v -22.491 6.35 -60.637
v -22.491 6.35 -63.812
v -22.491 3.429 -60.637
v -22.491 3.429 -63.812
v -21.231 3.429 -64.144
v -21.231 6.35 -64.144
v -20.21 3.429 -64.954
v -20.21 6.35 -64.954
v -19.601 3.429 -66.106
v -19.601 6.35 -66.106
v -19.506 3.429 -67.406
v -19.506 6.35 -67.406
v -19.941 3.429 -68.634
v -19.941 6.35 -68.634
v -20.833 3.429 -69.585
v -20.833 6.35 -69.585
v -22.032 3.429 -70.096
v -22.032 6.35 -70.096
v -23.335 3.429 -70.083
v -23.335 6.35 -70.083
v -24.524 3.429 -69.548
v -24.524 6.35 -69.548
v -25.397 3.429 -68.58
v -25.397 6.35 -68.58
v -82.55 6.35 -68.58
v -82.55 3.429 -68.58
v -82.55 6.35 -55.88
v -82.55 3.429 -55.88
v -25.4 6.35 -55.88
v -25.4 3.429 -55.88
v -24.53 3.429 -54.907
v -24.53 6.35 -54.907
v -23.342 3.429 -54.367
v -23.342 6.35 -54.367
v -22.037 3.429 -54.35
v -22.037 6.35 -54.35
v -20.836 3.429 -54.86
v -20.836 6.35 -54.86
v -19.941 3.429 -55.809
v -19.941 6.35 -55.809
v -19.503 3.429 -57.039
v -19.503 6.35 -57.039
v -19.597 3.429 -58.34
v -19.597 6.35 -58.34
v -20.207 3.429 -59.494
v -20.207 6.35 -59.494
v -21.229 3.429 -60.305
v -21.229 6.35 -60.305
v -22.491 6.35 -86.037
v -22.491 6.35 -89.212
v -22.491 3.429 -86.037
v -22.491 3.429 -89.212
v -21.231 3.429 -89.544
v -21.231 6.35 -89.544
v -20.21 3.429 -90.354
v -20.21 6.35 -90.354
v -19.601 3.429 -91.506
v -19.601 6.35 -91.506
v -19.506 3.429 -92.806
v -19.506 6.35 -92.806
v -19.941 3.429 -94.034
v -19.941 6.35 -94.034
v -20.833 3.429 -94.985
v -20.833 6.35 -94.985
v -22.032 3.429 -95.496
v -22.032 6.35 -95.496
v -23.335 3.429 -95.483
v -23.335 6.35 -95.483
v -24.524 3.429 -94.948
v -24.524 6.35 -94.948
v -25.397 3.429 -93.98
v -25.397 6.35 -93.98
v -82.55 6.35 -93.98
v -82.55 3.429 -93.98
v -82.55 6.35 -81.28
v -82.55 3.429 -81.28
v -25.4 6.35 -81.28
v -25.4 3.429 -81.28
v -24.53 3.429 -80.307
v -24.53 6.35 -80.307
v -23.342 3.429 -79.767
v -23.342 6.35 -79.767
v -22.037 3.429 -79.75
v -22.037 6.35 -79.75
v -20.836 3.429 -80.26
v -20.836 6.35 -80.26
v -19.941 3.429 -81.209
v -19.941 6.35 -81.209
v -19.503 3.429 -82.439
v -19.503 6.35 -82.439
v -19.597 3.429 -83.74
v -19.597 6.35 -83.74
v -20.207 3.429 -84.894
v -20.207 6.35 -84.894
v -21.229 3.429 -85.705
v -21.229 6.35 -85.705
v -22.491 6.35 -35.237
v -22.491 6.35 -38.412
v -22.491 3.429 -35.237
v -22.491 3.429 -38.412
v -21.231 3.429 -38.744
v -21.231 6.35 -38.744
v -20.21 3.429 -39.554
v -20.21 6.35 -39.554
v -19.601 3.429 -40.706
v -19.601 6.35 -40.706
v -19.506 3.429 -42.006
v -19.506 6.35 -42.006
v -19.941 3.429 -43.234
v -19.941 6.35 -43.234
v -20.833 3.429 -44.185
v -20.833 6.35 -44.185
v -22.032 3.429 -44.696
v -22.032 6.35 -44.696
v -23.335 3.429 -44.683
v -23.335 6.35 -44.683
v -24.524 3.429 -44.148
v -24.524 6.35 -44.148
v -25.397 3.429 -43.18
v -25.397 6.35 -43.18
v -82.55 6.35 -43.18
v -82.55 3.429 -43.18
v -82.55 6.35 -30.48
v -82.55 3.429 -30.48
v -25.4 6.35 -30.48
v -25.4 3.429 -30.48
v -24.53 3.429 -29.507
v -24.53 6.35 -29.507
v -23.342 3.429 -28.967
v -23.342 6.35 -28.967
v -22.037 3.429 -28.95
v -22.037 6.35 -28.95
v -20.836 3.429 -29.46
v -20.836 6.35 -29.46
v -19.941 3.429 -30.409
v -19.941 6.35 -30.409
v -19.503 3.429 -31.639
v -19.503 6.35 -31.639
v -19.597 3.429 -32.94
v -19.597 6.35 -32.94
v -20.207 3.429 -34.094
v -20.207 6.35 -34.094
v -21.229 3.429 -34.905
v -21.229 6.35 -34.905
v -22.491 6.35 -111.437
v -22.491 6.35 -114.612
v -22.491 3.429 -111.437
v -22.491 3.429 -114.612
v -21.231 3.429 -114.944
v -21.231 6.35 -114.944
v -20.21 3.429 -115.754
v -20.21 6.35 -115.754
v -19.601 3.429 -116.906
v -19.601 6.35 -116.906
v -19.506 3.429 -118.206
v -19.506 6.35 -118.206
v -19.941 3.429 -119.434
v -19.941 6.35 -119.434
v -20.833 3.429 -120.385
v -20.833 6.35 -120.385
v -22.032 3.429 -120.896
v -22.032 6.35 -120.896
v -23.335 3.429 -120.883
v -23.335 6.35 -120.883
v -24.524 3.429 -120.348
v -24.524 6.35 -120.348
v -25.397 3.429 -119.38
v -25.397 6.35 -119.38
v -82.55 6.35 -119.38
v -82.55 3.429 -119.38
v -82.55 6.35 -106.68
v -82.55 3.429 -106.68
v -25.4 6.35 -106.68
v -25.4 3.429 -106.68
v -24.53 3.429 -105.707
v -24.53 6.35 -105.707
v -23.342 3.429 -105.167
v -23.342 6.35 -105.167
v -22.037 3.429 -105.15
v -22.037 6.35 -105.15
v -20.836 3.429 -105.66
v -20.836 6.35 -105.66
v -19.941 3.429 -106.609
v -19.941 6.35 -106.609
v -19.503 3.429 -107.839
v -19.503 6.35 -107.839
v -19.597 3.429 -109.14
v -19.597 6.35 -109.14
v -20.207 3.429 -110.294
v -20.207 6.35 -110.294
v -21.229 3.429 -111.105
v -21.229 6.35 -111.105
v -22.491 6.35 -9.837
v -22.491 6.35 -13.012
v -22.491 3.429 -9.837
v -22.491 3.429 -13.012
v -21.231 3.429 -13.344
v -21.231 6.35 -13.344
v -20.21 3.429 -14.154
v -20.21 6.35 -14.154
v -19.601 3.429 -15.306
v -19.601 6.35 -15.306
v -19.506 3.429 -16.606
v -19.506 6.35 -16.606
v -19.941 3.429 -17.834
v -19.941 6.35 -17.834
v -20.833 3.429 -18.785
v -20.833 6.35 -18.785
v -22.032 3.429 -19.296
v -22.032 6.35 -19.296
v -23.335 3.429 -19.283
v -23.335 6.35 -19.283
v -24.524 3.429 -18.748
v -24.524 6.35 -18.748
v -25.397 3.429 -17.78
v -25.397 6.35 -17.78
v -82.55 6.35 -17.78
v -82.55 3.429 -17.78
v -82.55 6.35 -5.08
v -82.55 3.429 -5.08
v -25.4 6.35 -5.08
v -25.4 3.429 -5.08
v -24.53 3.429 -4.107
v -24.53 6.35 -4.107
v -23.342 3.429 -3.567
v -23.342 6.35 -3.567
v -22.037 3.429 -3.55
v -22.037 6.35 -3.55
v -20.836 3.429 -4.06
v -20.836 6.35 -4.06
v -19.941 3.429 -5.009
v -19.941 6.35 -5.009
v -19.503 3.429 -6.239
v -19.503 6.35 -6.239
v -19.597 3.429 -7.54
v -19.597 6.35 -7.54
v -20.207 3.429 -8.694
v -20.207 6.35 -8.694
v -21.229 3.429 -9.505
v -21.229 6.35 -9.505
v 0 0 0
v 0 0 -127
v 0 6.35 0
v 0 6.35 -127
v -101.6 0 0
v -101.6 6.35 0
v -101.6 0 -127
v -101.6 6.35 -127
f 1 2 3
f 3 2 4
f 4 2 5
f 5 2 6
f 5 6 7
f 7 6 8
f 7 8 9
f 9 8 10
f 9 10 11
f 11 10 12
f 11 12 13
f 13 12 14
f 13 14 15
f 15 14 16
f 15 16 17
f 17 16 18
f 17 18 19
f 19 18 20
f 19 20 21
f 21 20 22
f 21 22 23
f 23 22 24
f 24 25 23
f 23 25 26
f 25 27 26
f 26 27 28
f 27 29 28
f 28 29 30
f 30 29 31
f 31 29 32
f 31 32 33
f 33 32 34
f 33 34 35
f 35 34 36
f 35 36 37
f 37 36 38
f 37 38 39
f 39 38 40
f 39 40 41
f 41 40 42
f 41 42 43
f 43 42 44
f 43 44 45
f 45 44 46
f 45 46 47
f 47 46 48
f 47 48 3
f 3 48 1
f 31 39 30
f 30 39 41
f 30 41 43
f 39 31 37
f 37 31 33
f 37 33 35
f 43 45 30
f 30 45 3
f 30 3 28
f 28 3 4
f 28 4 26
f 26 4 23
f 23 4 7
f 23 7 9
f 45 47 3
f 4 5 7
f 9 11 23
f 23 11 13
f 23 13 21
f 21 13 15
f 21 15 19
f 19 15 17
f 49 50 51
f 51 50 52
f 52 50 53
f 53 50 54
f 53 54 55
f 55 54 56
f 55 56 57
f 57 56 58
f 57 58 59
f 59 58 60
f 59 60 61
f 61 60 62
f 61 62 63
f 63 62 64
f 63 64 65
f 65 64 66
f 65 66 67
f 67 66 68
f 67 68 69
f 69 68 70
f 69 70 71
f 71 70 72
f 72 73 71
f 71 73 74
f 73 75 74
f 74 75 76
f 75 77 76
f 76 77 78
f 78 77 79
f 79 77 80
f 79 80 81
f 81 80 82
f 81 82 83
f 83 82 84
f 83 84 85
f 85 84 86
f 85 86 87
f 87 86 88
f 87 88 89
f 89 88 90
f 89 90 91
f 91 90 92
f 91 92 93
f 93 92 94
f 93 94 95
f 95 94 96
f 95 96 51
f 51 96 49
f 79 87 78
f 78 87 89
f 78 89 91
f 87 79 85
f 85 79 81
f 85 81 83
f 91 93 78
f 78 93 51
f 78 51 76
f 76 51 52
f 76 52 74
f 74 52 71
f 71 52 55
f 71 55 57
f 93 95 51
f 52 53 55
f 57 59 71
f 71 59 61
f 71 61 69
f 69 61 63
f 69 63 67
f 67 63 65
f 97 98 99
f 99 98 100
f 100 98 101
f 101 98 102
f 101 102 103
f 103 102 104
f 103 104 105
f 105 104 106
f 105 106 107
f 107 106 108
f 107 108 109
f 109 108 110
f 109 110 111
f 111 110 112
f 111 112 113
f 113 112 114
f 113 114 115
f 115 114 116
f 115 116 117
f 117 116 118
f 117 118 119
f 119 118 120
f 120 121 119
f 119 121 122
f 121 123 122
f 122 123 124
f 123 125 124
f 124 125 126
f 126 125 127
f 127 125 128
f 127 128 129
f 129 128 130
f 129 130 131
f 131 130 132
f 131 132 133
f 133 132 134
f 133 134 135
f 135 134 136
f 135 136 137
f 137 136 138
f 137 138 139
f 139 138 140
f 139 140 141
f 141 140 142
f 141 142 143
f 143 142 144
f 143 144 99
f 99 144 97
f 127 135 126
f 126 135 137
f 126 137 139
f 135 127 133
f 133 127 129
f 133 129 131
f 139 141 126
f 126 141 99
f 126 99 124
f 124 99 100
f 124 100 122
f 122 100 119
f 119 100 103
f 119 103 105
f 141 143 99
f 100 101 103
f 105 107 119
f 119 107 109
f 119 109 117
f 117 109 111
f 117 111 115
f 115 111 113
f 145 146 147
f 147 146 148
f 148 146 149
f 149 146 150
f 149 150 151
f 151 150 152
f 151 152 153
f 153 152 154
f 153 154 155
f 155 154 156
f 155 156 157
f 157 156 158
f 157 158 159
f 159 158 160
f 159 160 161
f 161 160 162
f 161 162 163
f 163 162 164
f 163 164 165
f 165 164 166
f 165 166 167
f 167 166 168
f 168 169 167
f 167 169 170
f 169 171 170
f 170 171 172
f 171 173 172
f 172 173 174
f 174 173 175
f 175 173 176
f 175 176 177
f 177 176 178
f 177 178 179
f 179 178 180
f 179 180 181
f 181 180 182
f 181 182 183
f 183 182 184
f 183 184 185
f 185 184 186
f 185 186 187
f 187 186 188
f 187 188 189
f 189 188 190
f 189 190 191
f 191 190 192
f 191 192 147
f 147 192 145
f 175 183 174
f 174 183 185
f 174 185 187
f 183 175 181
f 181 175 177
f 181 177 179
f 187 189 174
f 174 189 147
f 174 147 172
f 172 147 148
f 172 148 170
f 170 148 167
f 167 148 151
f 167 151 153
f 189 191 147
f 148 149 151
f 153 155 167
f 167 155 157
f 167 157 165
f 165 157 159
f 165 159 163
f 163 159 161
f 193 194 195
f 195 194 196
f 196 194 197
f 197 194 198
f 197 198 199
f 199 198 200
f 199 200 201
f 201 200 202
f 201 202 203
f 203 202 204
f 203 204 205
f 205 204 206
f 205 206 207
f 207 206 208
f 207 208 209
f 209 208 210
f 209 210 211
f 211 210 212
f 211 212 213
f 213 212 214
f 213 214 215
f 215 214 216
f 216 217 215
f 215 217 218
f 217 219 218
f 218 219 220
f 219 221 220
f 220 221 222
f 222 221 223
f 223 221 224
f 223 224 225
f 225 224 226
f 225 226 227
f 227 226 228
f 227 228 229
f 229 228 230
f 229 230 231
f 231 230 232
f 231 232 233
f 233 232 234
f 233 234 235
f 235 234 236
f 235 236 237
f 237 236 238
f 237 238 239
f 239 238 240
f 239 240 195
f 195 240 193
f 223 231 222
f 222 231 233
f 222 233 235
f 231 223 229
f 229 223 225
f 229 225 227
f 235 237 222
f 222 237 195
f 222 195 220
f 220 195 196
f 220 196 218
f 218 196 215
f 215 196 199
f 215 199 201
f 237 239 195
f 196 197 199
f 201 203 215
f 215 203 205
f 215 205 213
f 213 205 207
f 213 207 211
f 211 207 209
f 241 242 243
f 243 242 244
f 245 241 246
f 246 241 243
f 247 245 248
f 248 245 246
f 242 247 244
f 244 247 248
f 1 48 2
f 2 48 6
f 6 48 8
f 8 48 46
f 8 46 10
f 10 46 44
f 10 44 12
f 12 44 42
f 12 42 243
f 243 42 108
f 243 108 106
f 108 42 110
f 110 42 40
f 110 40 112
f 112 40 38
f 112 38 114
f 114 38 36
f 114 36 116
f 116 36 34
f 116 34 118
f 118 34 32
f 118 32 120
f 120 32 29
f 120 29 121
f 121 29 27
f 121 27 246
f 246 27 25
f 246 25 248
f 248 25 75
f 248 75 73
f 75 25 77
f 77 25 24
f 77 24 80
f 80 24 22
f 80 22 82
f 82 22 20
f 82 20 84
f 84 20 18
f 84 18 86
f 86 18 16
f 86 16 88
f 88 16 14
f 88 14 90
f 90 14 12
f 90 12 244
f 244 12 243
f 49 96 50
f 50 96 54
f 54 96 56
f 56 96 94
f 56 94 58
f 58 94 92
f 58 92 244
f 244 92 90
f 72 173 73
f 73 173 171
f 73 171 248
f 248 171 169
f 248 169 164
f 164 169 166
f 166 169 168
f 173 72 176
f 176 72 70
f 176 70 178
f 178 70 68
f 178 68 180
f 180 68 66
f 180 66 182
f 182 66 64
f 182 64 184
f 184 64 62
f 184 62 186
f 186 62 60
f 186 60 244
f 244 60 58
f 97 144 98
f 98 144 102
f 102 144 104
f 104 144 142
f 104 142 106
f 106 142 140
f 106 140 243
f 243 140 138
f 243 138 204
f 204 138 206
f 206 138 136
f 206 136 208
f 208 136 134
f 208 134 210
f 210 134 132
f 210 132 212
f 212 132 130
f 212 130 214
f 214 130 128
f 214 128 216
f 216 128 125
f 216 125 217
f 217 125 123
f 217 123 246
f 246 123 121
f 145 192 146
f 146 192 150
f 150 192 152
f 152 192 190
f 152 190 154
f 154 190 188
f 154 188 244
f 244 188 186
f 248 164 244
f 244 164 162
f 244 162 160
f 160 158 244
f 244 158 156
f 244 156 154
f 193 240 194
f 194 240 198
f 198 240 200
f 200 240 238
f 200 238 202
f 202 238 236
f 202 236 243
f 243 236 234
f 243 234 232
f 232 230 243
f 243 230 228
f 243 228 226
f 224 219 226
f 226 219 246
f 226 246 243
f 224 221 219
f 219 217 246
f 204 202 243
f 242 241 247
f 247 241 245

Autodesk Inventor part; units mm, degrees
ref_plane "YZ Plane" through (0, 0, 0) normal (1, 0, 0) x (0, 1, 0)
ref_plane "XZ Plane" through (0, 0, 0) normal (0, 1, 0) x (-1, 0, 0)
ref_plane "XY Plane" through (0, 0, 0) normal (0, 0, 1) x (1, 0, 0)
sketch "Sketch1" plane through (0, 0, 0) normal (0, 1, 0) x (-1, 0, 0)
  line L0 (0, 0) -> (101.6, 0)
  line L1 (101.6, 0) -> (101.6, -127)
  line L2 (101.6, -127) -> (0, -127)
  line L3 (0, -127) -> (0, 0)
  dimension "d0" = 101.6
  dimension "d1" = 127
extrude "Extrusion1" add sketch "Sketch1" along normal blind 6.35
sketch "Sketch2" plane through (0, 6.35, 0) normal (0, 1, 0) x (1, 0, 0)
  line L0 (-82.55, 5.08) -> (-25.4, 5.08)
  line L1 (-22.4915, 9.8367) -> (-22.4915, 13.0117)
  line L2 (-25.3966, 17.78) -> (-82.55, 17.78)
  line L3 (-82.55, 17.78) -> (-82.55, 5.08)
  arc A0 (-25.4, 5.08) -> (-22.4915, 9.8367) centre (-22.6493, 6.6656) ccw
  arc A1 (-22.4915, 13.0117) -> (-25.3966, 17.78) centre (-22.6527, 16.1826) ccw
  line L4 (-101.6, 127) -> (-101.6, 0) projected
  line L5 (-101.6, 0) -> (0, 0) projected
  line L6 (-82.55, 30.48) -> (-25.4, 30.48)
  line L7 (-22.4915, 35.2367) -> (-22.4915, 38.4117)
  line L8 (-25.3966, 43.18) -> (-82.55, 43.18)
  line L9 (-82.55, 43.18) -> (-82.55, 30.48)
  arc A2 (-25.4, 30.48) -> (-22.4915, 35.2367) centre (-22.6493, 32.0656) ccw
  arc A3 (-22.4915, 38.4117) -> (-25.3966, 43.18) centre (-22.6527, 41.5826) ccw
  line L10 (-82.55, 55.88) -> (-25.4, 55.88)
  line L11 (-22.4915, 60.6367) -> (-22.4915, 63.8117)
  line L12 (-25.3966, 68.58) -> (-82.55, 68.58)
  line L13 (-82.55, 68.58) -> (-82.55, 55.88)
  arc A4 (-25.4, 55.88) -> (-22.4915, 60.6367) centre (-22.6493, 57.4656) ccw
  arc A5 (-22.4915, 63.8117) -> (-25.3966, 68.58) centre (-22.6527, 66.9826) ccw
  line L14 (-82.55, 81.28) -> (-25.4, 81.28)
  line L15 (-22.4915, 86.0367) -> (-22.4915, 89.2117)
  line L16 (-25.3966, 93.98) -> (-82.55, 93.98)
  line L17 (-82.55, 93.98) -> (-82.55, 81.28)
  arc A6 (-25.4, 81.28) -> (-22.4915, 86.0367) centre (-22.6493, 82.8656) ccw
  arc A7 (-22.4915, 89.2117) -> (-25.3966, 93.98) centre (-22.6527, 92.3826) ccw
  line L18 (-82.55, 106.68) -> (-25.4, 106.68)
  line L19 (-22.4915, 111.4367) -> (-22.4915, 114.6117)
  line L20 (-25.3966, 119.38) -> (-82.55, 119.38)
  line L21 (-82.55, 119.38) -> (-82.55, 106.68)
  arc A8 (-25.4, 106.68) -> (-22.4915, 111.4367) centre (-22.6493, 108.2656) ccw
  arc A9 (-22.4915, 114.6117) -> (-25.3966, 119.38) centre (-22.6527, 117.7826) ccw
  point P0 (-82.55, 11.43)
  point P1 (-82.55, 36.83)
  point P2 (-82.55, 62.23)
  point P3 (-82.55, 87.63)
  point P4 (-82.55, 113.03)
  dimension "d5" = 12.7
  dimension "d6" = 6.35
  dimension "d7" = 6.35
  dimension "d8" = 3.175
  dimension "d9" = 57.15
  dimension "d10" = 19.05
  dimension "d11" = 5.08
  dimension "d14" = 25.4
extrude "Extrusion2" cut sketch "Sketch2" against normal blind 2.921
properties part number "mold plate with alignment"
